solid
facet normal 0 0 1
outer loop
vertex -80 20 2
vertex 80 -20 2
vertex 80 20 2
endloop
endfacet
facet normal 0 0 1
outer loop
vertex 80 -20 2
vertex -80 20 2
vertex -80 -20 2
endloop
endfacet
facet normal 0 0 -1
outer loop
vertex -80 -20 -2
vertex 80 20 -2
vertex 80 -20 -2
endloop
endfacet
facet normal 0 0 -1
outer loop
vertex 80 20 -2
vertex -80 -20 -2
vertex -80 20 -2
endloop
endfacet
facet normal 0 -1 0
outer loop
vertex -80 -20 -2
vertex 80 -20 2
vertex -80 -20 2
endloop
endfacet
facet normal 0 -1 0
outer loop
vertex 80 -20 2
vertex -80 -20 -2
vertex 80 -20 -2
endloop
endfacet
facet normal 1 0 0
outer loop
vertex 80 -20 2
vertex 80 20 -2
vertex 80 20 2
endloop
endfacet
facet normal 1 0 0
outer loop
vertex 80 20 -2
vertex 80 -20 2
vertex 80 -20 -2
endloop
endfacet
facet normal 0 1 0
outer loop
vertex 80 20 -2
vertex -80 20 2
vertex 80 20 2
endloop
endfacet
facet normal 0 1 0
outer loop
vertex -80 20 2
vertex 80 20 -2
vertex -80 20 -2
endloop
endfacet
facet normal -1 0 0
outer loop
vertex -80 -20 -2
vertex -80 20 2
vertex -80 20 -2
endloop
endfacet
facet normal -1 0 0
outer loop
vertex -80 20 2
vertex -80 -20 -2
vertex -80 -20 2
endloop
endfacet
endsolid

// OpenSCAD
/*  Copyright (C) 2022  Adam Green (https://github.com/adamgreen)

    This program is free software; you can redistribute it and/or
    modify it under the terms of the GNU General Public License
    as published by the Free Software Foundation; either version 2
    of the License, or (at your option) any later version.

    This program is distributed in the hope that it will be useful,
    but WITHOUT ANY WARRANTY; without even the implied warranty of
    MERCHANTABILITY or FITNESS FOR A PARTICULAR PURPOSE.  See the
    GNU General Public License for more details.
*/
// A test rectangle to see how flexible PETG prints are at specified thickness.

// ************
//  Parameters
// ************
thickness = 4.0;



cube([160.0, 40.0, thickness], center=true);



// Sets the smoothness of arcs/circles.
$fs = 0.1;
$fa = 1;
